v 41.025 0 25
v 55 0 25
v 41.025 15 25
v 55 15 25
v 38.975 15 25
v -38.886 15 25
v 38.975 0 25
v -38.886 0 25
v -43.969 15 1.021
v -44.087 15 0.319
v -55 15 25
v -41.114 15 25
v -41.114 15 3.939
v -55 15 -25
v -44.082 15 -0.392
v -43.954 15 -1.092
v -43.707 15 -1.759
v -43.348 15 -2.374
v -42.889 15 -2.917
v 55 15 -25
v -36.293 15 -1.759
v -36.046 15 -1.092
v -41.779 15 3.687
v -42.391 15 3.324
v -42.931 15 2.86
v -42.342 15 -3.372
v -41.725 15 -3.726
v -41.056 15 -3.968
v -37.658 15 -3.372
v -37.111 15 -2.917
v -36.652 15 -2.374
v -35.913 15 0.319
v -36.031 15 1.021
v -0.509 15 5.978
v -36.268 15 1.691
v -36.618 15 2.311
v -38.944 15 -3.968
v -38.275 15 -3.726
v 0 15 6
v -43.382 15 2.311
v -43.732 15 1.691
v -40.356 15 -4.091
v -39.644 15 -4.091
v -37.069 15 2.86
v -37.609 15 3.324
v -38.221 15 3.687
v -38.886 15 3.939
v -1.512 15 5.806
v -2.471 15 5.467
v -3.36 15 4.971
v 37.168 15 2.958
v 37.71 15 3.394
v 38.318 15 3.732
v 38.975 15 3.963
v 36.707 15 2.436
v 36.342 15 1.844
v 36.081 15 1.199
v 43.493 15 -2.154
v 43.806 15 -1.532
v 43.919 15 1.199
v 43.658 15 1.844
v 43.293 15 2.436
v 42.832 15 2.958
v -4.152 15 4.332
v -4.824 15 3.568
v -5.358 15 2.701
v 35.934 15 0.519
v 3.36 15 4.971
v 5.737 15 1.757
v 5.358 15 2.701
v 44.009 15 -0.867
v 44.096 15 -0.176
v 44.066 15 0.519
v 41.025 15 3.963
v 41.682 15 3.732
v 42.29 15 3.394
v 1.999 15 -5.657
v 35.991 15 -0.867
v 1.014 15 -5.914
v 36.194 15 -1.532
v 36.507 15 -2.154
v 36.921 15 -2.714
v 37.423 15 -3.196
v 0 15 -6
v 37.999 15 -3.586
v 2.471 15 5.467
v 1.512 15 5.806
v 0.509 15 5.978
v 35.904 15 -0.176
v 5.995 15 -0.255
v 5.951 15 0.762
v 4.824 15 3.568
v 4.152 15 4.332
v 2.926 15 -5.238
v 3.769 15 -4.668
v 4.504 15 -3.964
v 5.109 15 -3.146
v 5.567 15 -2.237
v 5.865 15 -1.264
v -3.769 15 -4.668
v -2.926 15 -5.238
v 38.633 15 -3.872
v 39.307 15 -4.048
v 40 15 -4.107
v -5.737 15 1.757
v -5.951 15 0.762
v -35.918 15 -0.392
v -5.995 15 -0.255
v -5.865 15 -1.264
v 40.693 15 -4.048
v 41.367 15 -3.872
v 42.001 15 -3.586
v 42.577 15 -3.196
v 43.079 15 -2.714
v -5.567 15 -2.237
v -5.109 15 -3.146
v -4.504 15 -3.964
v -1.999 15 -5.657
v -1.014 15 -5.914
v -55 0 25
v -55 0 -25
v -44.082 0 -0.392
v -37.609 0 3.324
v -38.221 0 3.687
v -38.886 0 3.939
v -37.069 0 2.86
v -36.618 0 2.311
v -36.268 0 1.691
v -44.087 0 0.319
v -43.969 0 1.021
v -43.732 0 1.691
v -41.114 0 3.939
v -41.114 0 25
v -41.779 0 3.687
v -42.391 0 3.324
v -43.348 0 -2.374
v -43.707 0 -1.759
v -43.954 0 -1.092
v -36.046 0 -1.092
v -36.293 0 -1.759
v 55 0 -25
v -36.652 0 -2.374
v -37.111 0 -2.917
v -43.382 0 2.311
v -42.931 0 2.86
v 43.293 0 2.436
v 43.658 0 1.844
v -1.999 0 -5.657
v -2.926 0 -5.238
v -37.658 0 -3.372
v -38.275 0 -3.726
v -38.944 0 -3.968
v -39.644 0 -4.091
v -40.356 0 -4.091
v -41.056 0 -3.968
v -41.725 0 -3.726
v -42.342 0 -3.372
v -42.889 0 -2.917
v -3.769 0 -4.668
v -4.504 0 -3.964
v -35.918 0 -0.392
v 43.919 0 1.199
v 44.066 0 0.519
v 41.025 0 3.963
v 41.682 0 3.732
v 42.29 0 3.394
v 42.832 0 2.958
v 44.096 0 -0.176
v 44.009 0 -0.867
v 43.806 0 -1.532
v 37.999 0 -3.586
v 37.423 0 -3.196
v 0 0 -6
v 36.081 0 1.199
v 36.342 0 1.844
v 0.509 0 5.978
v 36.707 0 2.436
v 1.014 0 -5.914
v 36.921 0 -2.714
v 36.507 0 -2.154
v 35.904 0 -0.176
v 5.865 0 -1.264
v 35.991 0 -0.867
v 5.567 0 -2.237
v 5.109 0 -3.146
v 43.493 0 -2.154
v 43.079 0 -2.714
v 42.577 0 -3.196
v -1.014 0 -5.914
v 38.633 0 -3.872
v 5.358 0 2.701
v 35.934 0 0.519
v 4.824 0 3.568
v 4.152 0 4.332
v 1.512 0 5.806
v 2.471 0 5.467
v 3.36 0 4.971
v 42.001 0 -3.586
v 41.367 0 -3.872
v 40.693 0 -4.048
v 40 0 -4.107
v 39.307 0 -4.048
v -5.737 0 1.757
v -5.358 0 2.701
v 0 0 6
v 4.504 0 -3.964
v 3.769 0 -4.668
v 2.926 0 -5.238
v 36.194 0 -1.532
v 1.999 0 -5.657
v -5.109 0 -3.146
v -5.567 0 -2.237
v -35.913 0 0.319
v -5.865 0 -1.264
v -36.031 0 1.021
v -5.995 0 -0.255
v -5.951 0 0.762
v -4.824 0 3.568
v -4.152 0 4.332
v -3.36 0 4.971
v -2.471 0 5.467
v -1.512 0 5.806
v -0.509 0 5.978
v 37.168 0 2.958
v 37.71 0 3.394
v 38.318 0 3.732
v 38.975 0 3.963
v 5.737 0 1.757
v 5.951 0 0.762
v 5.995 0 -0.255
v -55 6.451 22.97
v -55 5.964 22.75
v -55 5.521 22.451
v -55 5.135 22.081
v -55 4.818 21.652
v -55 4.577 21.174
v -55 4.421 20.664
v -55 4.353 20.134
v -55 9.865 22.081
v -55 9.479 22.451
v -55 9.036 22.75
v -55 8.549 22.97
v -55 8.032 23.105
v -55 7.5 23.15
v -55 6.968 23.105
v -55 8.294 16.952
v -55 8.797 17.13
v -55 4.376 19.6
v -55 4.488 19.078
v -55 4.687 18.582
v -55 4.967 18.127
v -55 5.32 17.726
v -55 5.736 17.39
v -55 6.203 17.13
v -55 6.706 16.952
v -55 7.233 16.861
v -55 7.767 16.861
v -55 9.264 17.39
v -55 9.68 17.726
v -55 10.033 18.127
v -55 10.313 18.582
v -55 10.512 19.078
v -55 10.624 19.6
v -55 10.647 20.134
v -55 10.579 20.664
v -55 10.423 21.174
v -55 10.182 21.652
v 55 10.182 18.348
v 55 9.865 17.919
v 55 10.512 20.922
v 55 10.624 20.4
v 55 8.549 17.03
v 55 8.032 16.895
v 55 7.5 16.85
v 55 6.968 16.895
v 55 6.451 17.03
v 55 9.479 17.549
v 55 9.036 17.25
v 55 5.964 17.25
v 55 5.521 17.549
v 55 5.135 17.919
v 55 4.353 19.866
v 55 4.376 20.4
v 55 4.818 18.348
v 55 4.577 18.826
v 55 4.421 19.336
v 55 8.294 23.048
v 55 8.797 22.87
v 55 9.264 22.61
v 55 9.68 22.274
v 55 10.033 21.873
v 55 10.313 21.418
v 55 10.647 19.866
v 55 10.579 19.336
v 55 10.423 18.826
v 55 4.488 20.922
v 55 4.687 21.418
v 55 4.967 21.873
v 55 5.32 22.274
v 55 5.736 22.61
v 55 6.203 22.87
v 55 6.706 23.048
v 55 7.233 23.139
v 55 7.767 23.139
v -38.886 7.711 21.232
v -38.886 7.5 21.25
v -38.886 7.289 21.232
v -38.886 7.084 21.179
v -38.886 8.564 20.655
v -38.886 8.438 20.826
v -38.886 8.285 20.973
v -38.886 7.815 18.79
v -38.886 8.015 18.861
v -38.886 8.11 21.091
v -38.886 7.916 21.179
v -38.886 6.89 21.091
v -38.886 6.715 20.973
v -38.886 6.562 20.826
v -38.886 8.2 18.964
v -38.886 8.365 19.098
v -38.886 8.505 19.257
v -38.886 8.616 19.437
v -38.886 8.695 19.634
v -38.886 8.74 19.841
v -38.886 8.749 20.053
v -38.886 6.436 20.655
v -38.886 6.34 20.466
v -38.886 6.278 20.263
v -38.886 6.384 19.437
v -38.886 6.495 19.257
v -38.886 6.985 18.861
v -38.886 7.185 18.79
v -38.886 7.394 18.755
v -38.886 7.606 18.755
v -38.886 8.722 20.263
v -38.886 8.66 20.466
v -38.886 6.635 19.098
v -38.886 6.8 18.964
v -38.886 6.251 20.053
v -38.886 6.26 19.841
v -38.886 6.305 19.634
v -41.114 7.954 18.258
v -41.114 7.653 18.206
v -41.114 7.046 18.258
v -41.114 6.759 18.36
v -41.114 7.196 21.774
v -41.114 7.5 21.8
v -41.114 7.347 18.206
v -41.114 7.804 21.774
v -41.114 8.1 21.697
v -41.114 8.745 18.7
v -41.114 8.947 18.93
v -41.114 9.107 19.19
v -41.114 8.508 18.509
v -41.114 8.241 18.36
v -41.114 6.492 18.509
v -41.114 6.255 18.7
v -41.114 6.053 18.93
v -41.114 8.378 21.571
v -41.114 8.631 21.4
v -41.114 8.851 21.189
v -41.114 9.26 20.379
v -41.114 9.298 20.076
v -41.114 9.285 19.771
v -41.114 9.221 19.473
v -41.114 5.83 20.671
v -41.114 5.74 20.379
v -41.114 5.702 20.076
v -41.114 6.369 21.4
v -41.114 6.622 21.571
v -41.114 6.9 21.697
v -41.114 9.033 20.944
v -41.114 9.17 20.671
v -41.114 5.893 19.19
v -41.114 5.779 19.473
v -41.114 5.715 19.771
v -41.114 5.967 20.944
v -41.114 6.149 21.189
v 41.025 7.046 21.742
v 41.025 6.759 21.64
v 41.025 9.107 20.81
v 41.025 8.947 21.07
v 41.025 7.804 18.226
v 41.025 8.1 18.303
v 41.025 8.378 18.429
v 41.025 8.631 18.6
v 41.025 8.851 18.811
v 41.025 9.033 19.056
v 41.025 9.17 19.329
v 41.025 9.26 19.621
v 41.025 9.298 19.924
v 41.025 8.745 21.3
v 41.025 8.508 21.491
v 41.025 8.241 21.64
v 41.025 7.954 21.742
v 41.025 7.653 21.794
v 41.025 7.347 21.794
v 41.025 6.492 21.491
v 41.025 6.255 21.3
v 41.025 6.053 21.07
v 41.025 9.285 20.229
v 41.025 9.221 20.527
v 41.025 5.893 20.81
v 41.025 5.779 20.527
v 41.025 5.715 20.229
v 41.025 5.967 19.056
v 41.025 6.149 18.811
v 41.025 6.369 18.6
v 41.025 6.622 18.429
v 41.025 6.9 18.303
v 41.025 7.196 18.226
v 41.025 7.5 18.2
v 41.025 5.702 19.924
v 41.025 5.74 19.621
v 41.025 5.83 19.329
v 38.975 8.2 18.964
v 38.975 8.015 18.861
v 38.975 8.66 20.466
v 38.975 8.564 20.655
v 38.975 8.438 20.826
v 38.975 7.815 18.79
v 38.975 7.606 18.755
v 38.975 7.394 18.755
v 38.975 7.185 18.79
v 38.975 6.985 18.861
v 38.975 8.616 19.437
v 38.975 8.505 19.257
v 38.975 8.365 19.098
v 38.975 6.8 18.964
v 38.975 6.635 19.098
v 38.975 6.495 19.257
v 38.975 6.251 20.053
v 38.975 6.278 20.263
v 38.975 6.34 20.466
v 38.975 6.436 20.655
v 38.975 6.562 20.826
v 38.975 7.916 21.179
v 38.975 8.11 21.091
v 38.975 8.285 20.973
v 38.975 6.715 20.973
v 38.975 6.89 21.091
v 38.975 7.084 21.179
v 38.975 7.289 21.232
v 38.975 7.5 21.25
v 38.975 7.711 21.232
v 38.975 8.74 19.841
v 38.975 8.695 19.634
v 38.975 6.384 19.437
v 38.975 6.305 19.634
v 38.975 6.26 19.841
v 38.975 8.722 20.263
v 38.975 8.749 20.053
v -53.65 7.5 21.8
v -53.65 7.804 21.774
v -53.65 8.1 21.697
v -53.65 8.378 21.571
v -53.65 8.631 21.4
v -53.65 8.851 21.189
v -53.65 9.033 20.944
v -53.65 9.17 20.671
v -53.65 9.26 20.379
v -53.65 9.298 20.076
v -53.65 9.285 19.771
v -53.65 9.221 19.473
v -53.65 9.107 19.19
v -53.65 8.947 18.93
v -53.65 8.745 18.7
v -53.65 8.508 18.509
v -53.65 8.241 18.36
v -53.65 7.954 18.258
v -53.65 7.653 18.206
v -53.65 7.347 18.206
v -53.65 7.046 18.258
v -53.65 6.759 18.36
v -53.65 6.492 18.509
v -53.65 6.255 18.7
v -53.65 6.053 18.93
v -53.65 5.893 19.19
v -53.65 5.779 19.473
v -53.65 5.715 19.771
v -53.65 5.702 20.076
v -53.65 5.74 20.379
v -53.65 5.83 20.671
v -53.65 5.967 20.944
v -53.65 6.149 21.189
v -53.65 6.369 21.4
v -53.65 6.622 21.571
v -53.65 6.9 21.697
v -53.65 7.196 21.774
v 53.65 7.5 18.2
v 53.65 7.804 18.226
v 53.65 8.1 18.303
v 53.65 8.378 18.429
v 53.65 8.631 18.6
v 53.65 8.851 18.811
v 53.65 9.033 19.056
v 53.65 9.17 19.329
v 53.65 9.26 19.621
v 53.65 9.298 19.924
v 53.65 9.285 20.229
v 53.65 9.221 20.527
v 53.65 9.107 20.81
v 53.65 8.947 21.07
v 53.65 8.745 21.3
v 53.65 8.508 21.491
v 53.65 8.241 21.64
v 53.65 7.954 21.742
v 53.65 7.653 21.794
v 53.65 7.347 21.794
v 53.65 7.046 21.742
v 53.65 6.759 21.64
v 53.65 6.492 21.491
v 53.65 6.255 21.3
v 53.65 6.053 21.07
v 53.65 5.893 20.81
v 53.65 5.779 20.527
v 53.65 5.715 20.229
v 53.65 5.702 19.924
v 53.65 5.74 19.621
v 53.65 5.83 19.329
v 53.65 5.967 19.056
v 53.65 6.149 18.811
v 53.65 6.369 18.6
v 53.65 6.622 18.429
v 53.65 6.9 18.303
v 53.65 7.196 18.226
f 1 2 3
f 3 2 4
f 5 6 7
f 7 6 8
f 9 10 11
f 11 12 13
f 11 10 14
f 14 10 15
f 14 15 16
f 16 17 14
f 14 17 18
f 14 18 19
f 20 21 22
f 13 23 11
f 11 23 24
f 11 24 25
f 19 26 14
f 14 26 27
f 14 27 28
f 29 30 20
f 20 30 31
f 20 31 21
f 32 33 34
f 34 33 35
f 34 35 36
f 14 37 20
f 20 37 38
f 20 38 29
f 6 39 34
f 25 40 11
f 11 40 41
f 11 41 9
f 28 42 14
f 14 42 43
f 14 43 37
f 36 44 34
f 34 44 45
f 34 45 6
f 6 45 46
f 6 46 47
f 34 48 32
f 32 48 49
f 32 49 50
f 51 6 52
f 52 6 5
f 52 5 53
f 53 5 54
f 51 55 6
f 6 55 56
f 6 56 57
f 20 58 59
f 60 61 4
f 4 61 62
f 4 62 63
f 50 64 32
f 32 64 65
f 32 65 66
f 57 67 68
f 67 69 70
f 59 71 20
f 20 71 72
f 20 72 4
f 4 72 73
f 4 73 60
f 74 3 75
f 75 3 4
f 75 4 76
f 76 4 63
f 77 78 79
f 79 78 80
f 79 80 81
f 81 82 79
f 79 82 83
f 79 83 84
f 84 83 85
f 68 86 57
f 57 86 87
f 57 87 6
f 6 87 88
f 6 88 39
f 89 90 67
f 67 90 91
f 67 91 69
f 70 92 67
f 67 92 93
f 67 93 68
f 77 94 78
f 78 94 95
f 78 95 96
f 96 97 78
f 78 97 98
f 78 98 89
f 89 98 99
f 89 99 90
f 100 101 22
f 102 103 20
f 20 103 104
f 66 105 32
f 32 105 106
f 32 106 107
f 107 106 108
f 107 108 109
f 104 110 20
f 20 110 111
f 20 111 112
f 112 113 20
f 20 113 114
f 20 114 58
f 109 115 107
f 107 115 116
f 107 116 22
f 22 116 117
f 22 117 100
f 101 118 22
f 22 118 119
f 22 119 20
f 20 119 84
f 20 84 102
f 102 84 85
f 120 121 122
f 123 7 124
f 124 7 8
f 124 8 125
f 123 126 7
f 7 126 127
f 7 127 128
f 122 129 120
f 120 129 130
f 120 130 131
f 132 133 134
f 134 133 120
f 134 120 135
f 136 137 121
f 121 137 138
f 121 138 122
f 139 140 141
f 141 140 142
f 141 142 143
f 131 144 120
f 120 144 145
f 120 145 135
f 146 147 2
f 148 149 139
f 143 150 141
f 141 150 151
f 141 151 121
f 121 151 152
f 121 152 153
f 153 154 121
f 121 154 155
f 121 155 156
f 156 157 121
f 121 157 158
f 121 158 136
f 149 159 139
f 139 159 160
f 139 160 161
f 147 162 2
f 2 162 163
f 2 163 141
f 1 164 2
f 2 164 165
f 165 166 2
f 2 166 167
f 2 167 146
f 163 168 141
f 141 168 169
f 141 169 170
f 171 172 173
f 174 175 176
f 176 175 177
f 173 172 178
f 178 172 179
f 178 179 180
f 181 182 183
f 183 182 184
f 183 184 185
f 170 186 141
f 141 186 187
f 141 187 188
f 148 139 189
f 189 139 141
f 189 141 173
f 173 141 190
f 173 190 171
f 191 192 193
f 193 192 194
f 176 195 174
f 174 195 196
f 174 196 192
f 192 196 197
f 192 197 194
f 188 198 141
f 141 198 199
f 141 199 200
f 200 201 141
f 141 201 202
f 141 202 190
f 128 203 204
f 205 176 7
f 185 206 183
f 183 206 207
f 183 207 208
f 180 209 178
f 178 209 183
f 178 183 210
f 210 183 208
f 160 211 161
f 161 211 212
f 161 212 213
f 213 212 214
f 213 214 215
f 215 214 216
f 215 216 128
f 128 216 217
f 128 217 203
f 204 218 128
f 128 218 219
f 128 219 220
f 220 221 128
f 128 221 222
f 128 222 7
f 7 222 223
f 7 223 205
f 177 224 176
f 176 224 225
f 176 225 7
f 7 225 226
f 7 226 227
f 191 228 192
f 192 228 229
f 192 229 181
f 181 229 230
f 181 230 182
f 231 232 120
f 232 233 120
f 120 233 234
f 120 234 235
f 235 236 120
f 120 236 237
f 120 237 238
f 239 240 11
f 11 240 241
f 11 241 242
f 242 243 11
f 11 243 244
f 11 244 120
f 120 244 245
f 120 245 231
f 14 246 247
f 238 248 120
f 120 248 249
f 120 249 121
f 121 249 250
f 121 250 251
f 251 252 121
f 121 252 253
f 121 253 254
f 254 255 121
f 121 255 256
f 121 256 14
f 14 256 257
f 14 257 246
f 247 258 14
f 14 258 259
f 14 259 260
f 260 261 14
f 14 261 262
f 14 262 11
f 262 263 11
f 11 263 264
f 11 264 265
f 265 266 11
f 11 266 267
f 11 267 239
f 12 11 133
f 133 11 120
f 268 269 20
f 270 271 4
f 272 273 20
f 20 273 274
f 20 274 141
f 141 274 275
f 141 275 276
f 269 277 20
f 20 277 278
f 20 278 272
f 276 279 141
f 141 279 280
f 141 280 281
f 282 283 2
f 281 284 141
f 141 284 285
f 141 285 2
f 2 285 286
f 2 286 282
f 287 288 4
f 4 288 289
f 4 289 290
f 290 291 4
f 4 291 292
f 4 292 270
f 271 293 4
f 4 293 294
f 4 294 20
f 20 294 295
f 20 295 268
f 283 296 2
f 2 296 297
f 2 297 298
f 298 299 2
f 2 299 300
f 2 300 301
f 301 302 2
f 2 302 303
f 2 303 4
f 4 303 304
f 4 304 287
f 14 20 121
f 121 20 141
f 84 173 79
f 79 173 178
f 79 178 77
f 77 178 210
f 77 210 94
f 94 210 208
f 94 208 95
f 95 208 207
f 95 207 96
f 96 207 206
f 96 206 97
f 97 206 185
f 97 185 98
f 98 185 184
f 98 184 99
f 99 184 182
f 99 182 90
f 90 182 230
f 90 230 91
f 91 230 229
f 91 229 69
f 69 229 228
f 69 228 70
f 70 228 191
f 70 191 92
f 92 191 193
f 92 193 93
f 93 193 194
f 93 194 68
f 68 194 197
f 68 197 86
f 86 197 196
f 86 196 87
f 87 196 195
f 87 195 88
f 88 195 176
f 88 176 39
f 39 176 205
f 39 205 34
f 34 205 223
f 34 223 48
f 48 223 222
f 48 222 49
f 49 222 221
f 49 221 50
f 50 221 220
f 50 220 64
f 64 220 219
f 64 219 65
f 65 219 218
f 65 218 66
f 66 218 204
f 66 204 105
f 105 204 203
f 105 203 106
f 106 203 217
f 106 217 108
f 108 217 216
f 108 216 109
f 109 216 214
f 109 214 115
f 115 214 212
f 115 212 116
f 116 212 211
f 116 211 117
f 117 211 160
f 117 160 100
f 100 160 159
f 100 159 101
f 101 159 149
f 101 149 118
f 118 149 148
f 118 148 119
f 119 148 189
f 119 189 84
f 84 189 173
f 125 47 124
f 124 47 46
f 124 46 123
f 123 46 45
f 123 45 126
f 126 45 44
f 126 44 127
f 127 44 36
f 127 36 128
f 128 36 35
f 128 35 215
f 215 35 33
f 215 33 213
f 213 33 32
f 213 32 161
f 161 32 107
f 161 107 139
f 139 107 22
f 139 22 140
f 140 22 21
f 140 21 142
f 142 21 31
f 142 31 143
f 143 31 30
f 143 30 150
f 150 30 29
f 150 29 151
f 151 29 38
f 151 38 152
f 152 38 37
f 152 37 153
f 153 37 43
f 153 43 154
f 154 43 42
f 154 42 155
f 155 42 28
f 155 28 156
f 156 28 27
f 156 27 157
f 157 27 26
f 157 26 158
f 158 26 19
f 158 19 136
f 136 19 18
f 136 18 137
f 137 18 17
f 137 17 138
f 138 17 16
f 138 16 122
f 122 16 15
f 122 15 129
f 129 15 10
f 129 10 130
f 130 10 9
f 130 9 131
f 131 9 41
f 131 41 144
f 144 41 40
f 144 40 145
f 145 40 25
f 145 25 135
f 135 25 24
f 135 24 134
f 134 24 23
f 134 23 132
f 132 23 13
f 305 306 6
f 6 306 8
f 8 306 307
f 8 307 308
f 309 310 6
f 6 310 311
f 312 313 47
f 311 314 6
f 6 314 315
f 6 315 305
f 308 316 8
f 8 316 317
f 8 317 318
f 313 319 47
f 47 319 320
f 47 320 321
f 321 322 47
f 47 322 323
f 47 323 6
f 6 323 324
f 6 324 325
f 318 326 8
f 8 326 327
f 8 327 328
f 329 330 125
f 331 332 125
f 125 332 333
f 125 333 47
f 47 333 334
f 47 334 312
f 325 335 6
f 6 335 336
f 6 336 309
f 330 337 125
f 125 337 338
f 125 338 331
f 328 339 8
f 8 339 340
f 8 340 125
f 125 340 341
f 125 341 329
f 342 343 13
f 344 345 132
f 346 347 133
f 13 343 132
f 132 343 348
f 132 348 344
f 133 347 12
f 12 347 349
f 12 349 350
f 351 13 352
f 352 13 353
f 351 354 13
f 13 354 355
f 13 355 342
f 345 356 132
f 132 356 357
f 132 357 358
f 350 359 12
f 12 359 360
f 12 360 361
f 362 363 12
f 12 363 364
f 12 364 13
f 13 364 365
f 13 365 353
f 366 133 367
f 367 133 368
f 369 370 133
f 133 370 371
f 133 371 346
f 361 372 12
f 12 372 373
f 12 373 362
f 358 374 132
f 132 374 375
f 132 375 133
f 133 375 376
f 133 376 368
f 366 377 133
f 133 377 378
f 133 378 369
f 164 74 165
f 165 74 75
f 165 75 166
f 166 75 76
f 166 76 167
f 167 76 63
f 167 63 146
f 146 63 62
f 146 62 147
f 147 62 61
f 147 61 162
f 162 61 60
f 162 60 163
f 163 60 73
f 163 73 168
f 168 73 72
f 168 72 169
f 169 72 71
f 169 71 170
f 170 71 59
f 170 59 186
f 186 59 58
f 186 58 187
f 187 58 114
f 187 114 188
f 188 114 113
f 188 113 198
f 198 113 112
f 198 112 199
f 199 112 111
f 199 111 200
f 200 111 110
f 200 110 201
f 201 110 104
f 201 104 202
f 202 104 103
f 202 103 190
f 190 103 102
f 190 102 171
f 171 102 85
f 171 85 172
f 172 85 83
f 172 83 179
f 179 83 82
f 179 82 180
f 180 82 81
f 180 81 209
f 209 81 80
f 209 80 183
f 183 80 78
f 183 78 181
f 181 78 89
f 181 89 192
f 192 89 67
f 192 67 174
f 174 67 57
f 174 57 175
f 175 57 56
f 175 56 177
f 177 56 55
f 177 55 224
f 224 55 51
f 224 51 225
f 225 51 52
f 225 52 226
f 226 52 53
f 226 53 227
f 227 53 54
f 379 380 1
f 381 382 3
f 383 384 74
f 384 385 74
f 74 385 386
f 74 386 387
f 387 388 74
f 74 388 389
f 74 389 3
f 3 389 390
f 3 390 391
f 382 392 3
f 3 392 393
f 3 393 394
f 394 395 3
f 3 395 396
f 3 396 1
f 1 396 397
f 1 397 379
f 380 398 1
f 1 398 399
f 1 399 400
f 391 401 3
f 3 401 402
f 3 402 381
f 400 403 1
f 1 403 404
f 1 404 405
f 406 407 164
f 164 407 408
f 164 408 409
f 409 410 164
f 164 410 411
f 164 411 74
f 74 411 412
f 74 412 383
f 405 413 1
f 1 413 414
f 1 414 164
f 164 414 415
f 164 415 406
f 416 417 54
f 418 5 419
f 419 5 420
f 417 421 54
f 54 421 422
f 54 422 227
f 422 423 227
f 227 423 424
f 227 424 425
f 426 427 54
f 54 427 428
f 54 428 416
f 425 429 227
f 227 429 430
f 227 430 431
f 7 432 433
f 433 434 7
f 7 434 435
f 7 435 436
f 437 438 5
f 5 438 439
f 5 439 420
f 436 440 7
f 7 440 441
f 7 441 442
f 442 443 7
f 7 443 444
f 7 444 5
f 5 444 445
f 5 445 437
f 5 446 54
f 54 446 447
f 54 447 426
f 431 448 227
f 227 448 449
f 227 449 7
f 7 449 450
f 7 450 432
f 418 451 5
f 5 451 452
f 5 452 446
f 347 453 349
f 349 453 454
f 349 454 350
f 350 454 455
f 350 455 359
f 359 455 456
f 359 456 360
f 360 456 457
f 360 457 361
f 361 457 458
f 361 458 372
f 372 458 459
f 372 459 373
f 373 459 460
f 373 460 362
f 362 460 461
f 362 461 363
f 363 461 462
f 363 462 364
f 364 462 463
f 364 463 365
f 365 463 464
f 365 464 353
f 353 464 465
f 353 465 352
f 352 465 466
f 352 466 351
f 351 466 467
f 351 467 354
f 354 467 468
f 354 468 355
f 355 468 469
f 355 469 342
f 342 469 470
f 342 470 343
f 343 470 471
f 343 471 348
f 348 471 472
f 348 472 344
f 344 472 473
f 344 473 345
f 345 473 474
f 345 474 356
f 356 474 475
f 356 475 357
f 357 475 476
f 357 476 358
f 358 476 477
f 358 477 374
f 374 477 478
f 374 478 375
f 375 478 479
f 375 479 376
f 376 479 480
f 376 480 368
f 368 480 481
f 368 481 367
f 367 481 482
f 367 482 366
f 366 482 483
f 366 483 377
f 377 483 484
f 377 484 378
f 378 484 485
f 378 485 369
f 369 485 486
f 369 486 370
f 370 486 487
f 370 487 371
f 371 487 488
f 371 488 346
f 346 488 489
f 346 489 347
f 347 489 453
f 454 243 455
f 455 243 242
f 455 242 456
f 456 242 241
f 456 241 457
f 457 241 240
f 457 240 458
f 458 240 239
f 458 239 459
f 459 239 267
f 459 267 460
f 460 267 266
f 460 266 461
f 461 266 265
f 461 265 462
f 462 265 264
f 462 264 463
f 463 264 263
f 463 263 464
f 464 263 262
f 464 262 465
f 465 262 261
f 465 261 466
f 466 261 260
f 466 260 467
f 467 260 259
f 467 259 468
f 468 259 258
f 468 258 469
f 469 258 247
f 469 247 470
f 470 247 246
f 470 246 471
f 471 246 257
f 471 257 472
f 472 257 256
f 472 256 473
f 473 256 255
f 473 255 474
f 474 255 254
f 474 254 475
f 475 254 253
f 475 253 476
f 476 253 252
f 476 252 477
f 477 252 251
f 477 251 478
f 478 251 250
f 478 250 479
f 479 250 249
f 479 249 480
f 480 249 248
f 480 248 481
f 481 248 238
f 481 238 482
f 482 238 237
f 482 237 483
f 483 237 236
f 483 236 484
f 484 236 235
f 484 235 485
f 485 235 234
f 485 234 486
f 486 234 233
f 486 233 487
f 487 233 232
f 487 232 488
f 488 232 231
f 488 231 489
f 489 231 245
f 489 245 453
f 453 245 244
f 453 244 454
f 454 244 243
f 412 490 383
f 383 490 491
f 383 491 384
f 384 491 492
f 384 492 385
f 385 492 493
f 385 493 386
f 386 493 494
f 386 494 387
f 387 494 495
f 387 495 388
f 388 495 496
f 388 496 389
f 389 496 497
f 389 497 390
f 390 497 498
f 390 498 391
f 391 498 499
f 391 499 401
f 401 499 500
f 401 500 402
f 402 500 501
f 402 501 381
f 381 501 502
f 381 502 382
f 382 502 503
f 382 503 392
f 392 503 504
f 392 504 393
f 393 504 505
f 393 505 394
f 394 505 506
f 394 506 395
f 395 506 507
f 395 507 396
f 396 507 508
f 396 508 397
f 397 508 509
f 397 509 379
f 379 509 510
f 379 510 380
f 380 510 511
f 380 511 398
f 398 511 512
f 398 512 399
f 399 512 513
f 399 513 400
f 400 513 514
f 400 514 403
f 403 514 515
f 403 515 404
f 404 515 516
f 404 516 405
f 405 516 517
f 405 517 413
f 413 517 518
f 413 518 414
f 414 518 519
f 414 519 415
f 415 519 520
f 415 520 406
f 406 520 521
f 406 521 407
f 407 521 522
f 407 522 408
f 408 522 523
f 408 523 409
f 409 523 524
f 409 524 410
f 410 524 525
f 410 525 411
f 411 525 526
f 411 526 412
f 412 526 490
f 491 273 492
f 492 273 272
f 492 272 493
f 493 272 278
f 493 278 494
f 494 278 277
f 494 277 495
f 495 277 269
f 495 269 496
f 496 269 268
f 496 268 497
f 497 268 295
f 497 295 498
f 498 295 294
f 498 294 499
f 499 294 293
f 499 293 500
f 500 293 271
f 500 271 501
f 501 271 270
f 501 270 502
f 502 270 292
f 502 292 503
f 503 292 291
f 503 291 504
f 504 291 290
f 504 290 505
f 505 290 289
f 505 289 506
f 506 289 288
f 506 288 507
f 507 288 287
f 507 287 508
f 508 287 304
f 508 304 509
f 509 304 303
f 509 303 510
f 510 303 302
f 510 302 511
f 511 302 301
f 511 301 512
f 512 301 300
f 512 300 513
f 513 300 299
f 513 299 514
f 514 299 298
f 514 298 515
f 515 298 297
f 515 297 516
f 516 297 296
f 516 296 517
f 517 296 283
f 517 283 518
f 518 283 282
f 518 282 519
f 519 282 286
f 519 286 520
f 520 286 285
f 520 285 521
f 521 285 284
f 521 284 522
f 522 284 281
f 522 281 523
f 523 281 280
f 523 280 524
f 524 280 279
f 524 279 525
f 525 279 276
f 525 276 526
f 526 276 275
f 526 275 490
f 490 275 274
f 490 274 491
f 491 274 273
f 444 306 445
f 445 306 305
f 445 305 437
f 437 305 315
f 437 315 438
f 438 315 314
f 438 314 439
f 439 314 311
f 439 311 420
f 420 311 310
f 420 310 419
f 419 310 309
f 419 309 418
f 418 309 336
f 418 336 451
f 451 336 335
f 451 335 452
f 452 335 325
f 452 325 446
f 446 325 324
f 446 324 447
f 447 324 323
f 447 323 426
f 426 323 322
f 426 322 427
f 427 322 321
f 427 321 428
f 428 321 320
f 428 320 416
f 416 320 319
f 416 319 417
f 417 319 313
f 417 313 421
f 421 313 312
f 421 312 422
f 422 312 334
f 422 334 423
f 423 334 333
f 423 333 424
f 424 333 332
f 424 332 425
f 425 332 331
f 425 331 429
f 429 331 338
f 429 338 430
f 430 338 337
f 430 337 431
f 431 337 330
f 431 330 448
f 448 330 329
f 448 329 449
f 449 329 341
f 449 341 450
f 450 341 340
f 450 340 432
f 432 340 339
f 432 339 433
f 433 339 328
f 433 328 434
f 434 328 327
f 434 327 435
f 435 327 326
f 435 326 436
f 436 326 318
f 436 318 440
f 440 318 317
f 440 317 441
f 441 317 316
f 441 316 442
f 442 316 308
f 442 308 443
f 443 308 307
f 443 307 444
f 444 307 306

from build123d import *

# Parameters (mm, degrees)
SKETCH1_W                                       = 110
SKETCH1_H                                       = 50
SKETCH1_R                                       = 6
BOSS_EXTRUDE2_DEPTH                             = 15
CUT_EXTRUDE1_DEPTH                              = 24
CSK_FOR_M3_FLAT_HEAD_MACHINE_SCREW1_D           = 3.6
CSK_FOR_M3_FLAT_HEAD_MACHINE_SCREW1_DEPTH       = 13.886032024
CSK_FOR_M3_FLAT_HEAD_MACHINE_SCREW1_CSINK_D     = 6.3
CSK_FOR_M3_FLAT_HEAD_MACHINE_SCREW1_CSINK_ANGLE = 90
CSK_FOR_M3_FLAT_HEAD_MACHINE_SCREW1_TIP         = 1.081549114
CSK_FOR_M3_FLAT_HEAD_MACHINE_SCREW2_D           = 3.6
CSK_FOR_M3_FLAT_HEAD_MACHINE_SCREW2_DEPTH       = 13.975
CSK_FOR_M3_FLAT_HEAD_MACHINE_SCREW2_CSINK_D     = 6.3
CSK_FOR_M3_FLAT_HEAD_MACHINE_SCREW2_CSINK_ANGLE = 90
CSK_FOR_M3_FLAT_HEAD_MACHINE_SCREW2_TIP         = 1.081549114
TAP_DRILL_FOR_M3X0_5_TAP1_D                     = 2.5


with BuildPart() as part:
    # Sketch1 → Boss-Extrude2 (new body)
    with BuildSketch(Plane(origin=(0, 0, 0), x_dir=(1, 0, 0), z_dir=(0, 1, 0))):
        Rectangle(SKETCH1_W, SKETCH1_H)
        Circle(SKETCH1_R, mode=Mode.SUBTRACT)
    extrude(amount=BOSS_EXTRUDE2_DEPTH)

    # Sketch2 → Cut-Extrude1 (cut)
    with BuildSketch(Plane(origin=(0, 15, 0), x_dir=(1, 0, 0), z_dir=(0, 1, 0))):
        with BuildLine():
            Line((-41.113967976, -25), (-38.886032024, -25))
            Line((-38.886032024, -25), (-38.886032024, -3.938852881))
            ThreePointArc((-38.886032024, -3.938852881), (-40, 4.106913882), (-41.113967976, -3.938852881))
            Line((-41.113967976, -3.938852881), (-41.113967976, -25))
        make_face()
        with BuildLine():
            Line((38.975, -25), (41.025, -25))
            Line((41.025, -25), (41.025, -3.962894048))
            ThreePointArc((41.025, -3.962894048), (40, 4.106913882), (38.975, -3.962894048))
            Line((38.975, -3.962894048), (38.975, -25))
        make_face()
    extrude(amount=-CUT_EXTRUDE1_DEPTH, mode=Mode.SUBTRACT)

    # CSK for M3 Flat Head Machine Screw1
    with Locations(Plane.ZY.offset(55)):
        with Locations((20, 7.5)):
            CounterSinkHole(CSK_FOR_M3_FLAT_HEAD_MACHINE_SCREW1_D / 2, CSK_FOR_M3_FLAT_HEAD_MACHINE_SCREW1_CSINK_D / 2, depth=CSK_FOR_M3_FLAT_HEAD_MACHINE_SCREW1_DEPTH, counter_sink_angle=CSK_FOR_M3_FLAT_HEAD_MACHINE_SCREW1_CSINK_ANGLE)
            with Locations((0, 0, -(CSK_FOR_M3_FLAT_HEAD_MACHINE_SCREW1_DEPTH + CSK_FOR_M3_FLAT_HEAD_MACHINE_SCREW1_TIP / 2))):  # 118° drill point
                Cone(0, CSK_FOR_M3_FLAT_HEAD_MACHINE_SCREW1_D / 2, CSK_FOR_M3_FLAT_HEAD_MACHINE_SCREW1_TIP, mode=Mode.SUBTRACT)

    # CSK for M3 Flat Head Machine Screw2
    with Locations(Plane(origin=(55, 0, 0), x_dir=(0, 0, -1), z_dir=(1, 0, 0))):
        with Locations((-20, 7.5)):
            CounterSinkHole(CSK_FOR_M3_FLAT_HEAD_MACHINE_SCREW2_D / 2, CSK_FOR_M3_FLAT_HEAD_MACHINE_SCREW2_CSINK_D / 2, depth=CSK_FOR_M3_FLAT_HEAD_MACHINE_SCREW2_DEPTH, counter_sink_angle=CSK_FOR_M3_FLAT_HEAD_MACHINE_SCREW2_CSINK_ANGLE)
            with Locations((0, 0, -(CSK_FOR_M3_FLAT_HEAD_MACHINE_SCREW2_DEPTH + CSK_FOR_M3_FLAT_HEAD_MACHINE_SCREW2_TIP / 2))):  # 118° drill point
                Cone(0, CSK_FOR_M3_FLAT_HEAD_MACHINE_SCREW2_D / 2, CSK_FOR_M3_FLAT_HEAD_MACHINE_SCREW2_TIP, mode=Mode.SUBTRACT)

    # Tap Drill for M3x0.5 Tap1 (through all)
    with Locations(Plane.ZY.offset(38.886032024)):
        with Locations((20, 7.5)):
            Hole(TAP_DRILL_FOR_M3X0_5_TAP1_D / 2)


solid = part.part
